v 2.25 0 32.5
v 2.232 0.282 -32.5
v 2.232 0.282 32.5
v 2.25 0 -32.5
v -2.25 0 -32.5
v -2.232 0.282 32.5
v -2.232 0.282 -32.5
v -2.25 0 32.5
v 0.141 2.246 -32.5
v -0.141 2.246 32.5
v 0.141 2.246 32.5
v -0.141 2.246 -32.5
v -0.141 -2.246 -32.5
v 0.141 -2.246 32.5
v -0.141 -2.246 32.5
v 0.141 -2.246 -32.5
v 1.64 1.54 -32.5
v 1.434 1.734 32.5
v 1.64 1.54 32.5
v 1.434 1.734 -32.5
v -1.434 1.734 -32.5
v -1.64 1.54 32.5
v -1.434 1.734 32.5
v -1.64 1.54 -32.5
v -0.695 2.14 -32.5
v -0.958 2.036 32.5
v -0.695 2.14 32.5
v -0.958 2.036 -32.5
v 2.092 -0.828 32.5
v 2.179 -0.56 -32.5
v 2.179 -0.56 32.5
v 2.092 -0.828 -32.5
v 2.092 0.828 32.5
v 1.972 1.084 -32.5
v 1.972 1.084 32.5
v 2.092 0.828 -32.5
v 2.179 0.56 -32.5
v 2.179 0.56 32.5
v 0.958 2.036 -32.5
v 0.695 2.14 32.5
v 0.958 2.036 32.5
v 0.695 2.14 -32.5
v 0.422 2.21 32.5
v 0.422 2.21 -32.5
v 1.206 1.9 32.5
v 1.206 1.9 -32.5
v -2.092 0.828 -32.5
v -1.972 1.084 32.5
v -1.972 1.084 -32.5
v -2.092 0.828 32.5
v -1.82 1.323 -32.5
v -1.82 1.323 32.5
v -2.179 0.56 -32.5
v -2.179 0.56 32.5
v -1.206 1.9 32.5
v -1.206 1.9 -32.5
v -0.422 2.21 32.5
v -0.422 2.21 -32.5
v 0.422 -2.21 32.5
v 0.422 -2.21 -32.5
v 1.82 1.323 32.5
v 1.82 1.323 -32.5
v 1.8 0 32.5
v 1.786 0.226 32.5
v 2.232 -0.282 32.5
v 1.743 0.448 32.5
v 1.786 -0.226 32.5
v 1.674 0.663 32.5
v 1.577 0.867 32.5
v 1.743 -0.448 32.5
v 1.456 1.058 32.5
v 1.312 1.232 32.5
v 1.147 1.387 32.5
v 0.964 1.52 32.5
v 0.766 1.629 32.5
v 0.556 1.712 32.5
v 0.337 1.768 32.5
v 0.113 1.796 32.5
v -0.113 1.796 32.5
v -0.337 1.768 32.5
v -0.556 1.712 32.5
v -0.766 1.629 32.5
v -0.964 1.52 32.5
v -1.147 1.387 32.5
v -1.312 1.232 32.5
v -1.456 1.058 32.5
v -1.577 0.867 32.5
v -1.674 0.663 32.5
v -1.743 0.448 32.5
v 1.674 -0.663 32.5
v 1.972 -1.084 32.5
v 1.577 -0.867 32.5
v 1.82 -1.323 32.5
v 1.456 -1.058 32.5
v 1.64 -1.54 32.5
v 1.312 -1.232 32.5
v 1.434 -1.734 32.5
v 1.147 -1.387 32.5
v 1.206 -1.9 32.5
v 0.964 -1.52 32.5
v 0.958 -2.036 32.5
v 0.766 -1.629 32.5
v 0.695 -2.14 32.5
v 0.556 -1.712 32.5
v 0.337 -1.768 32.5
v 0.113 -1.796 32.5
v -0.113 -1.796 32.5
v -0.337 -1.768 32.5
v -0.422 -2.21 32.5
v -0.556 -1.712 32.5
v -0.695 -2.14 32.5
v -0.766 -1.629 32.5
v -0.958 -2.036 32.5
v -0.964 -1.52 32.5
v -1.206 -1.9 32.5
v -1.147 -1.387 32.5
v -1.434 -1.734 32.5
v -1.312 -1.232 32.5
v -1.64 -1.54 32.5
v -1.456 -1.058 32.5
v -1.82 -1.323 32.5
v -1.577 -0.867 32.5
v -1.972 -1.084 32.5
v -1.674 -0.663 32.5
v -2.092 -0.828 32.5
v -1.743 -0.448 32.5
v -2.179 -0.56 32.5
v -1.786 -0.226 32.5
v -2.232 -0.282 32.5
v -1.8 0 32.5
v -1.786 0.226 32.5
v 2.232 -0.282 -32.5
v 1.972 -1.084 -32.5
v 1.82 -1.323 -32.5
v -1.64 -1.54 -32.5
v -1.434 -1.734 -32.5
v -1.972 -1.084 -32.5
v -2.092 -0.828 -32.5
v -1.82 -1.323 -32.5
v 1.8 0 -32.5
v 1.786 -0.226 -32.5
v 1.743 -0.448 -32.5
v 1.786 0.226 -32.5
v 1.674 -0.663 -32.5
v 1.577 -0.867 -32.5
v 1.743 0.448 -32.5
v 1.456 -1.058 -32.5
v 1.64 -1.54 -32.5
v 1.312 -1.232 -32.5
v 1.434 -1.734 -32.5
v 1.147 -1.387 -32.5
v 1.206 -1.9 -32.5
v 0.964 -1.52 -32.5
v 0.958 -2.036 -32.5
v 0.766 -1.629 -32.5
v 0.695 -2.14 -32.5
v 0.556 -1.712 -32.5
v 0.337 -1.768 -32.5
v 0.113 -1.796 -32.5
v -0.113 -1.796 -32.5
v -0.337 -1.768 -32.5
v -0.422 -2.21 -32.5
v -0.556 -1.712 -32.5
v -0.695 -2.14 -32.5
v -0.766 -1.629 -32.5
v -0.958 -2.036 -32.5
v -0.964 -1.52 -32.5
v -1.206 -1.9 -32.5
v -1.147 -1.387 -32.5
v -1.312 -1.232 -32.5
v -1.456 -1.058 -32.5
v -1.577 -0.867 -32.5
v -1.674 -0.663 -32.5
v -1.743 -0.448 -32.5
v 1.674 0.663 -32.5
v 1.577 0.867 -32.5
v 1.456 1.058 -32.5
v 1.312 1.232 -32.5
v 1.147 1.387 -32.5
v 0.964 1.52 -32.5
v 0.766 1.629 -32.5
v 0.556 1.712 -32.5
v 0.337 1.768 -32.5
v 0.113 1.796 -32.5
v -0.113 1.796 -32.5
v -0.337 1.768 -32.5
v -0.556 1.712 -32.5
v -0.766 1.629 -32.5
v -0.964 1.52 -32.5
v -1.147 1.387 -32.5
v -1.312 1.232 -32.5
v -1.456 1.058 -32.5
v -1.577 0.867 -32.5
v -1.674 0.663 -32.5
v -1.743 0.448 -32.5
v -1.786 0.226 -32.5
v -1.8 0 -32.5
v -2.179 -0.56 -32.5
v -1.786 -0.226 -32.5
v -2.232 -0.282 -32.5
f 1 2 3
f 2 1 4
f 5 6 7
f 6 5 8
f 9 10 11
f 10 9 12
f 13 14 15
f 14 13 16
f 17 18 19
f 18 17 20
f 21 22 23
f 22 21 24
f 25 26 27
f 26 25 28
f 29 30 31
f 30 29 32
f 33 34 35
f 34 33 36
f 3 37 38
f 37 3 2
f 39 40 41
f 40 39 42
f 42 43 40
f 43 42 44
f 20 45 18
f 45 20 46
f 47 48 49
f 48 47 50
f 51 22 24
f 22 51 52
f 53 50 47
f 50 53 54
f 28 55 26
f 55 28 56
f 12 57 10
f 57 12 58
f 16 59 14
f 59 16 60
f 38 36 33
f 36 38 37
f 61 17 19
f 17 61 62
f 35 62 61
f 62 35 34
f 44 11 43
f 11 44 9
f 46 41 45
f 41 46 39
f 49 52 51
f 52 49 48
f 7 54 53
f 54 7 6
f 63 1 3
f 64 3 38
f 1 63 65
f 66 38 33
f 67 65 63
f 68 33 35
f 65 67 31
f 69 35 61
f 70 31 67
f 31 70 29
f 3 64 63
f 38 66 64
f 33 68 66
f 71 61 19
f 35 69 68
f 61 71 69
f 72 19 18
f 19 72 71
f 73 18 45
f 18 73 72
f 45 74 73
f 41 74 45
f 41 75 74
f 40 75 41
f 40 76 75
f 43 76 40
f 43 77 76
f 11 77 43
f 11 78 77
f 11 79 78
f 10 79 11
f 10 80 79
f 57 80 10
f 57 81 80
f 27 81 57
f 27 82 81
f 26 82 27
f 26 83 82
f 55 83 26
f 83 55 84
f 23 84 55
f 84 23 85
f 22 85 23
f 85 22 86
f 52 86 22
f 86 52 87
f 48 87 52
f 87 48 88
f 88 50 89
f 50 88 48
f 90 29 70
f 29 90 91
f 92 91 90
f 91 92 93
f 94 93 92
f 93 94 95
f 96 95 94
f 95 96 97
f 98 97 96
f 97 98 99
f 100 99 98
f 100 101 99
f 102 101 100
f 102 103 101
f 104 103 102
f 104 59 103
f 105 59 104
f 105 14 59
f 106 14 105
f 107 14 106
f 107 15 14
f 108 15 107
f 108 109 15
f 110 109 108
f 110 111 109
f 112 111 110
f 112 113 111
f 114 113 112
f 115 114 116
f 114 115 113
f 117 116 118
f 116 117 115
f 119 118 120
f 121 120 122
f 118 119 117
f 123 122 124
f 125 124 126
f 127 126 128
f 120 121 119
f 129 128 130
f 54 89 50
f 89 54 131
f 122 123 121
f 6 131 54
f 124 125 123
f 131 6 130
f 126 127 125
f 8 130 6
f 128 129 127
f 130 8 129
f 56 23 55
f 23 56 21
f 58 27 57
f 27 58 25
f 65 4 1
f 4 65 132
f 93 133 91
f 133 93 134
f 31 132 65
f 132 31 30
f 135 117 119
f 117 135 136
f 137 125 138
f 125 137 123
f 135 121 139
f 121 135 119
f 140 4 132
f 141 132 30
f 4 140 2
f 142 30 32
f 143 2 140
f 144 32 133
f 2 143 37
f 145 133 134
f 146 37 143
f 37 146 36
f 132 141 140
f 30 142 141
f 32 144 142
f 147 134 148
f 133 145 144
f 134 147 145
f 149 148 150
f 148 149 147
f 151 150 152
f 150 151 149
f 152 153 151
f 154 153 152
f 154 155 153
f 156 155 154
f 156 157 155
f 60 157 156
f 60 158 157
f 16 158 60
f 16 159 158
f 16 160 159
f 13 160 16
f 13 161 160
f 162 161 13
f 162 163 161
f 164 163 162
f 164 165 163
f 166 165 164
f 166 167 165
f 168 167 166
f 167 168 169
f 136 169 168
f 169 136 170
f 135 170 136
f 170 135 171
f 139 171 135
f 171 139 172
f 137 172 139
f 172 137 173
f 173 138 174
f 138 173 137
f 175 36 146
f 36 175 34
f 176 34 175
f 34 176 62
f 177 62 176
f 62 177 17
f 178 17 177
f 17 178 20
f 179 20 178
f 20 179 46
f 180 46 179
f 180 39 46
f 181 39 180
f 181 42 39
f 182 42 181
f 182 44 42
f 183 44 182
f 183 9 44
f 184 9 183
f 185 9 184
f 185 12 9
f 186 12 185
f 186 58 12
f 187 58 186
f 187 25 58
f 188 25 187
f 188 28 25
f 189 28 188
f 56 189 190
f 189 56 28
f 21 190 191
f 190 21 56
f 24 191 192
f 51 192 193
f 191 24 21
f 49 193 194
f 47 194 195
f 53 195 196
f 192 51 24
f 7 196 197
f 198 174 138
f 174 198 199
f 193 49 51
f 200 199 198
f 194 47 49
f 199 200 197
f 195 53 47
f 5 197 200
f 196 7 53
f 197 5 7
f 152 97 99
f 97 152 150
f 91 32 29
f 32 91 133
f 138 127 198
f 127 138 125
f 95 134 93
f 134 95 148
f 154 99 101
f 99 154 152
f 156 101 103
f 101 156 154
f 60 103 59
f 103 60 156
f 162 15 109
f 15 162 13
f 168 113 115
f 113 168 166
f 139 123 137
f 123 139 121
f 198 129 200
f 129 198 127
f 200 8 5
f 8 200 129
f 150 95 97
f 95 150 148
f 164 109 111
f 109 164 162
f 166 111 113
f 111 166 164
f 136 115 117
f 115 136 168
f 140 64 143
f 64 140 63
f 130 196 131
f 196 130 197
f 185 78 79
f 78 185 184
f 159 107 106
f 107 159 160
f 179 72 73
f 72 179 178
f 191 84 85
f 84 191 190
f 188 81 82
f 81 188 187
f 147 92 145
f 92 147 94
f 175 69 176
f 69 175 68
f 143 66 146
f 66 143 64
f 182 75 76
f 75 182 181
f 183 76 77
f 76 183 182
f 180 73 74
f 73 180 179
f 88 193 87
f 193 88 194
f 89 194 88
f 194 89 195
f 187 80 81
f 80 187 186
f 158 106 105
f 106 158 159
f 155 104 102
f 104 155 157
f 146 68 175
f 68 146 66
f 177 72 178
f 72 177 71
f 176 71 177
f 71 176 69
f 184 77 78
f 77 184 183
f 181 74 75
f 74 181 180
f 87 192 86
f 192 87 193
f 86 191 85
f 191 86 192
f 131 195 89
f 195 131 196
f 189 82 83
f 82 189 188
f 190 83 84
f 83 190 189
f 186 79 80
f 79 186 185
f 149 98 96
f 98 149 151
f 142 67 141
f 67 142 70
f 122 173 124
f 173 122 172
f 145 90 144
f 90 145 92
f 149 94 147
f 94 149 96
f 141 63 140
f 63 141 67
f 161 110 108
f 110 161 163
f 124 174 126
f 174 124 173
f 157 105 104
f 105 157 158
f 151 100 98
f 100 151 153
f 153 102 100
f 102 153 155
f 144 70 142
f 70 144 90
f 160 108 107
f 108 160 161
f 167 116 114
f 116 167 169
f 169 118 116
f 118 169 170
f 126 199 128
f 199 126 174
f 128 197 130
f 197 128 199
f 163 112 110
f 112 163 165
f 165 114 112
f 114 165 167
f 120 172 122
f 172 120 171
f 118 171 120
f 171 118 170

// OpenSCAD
$fn = 50;


difference() {
	union() {
		translate(v = [0, 0, -32.5000000000]) {
			cylinder(h = 65, r = 2.2500000000);
		}
	}
	union() {
		translate(v = [0, 0, -100.0000000000]) {
			cylinder(h = 200, r = 1.8000000000);
		}
	}
}
